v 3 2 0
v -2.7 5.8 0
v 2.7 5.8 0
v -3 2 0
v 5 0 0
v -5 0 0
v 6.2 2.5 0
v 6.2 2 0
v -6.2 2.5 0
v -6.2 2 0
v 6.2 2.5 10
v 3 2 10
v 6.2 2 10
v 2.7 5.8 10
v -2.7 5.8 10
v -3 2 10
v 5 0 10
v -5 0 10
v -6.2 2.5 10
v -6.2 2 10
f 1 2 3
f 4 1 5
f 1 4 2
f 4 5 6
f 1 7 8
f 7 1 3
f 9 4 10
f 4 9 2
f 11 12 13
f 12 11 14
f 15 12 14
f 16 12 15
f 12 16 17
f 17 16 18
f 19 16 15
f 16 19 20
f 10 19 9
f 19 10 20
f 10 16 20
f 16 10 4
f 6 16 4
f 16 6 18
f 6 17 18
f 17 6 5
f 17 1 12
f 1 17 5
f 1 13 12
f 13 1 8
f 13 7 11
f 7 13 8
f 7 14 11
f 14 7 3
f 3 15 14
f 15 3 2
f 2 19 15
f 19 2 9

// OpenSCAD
// led bar mount for ender 3 with re-used idea colour led bars
// mounts to 2020 vslot

$fn=100;
ledStripL = 250;
ledStripH = 7 ;
ledStripW = 9.6 ;
holderWallT = 2 ;
HolderSize = 10 ;
wiggle = .02;
include <AluminumExtrusionProfile.scad>



*translate([0,10,0]) linear_extrude(10) 2020_extrusion_profile(slot = "v");

module nut1(HolderSize) {
    linear_extrude (HolderSize) {
        for (i = [0:1:1]) {
            mirror([i,0,0]) 
                polygon([
                    [ 0,0],  // center
                    [ -5,0],
                    [ -3,2],
                    [ -6.2,2],
                    [ -6.2,2.5],
                    [ -2.7,5.8],
                    [ 0,5.8]
                ]);
        }
    }
}
module nut2(HolderSize) {
    linear_extrude (HolderSize) {
        for (i = [0:1:1]) {
            mirror([i,0,0]) 
                polygon([
                    [ 0,0],  // center
                    [ -4.5,0],
                    [ -2.3,2.3],
                    [ -5.5,2.3],
                    [ -5.5,2.8],
                    [ -2.4,5.3],
                    [ 0,5.3]
                ]);
        }
    }
}

#nut1(10);
//The led holder part
*translate([0,-(ledStripW + holderWallT)/2 + wiggle, HolderSize/2])
    difference(){    
        //The holder part
        cube([ledStripH + holderWallT, ledStripW + holderWallT, HolderSize],center=true);
        //The removed inside (led bar)
        cube([ledStripH, ledStripW, HolderSize + wiggle],center=true);
    }

nut2(9.5);
